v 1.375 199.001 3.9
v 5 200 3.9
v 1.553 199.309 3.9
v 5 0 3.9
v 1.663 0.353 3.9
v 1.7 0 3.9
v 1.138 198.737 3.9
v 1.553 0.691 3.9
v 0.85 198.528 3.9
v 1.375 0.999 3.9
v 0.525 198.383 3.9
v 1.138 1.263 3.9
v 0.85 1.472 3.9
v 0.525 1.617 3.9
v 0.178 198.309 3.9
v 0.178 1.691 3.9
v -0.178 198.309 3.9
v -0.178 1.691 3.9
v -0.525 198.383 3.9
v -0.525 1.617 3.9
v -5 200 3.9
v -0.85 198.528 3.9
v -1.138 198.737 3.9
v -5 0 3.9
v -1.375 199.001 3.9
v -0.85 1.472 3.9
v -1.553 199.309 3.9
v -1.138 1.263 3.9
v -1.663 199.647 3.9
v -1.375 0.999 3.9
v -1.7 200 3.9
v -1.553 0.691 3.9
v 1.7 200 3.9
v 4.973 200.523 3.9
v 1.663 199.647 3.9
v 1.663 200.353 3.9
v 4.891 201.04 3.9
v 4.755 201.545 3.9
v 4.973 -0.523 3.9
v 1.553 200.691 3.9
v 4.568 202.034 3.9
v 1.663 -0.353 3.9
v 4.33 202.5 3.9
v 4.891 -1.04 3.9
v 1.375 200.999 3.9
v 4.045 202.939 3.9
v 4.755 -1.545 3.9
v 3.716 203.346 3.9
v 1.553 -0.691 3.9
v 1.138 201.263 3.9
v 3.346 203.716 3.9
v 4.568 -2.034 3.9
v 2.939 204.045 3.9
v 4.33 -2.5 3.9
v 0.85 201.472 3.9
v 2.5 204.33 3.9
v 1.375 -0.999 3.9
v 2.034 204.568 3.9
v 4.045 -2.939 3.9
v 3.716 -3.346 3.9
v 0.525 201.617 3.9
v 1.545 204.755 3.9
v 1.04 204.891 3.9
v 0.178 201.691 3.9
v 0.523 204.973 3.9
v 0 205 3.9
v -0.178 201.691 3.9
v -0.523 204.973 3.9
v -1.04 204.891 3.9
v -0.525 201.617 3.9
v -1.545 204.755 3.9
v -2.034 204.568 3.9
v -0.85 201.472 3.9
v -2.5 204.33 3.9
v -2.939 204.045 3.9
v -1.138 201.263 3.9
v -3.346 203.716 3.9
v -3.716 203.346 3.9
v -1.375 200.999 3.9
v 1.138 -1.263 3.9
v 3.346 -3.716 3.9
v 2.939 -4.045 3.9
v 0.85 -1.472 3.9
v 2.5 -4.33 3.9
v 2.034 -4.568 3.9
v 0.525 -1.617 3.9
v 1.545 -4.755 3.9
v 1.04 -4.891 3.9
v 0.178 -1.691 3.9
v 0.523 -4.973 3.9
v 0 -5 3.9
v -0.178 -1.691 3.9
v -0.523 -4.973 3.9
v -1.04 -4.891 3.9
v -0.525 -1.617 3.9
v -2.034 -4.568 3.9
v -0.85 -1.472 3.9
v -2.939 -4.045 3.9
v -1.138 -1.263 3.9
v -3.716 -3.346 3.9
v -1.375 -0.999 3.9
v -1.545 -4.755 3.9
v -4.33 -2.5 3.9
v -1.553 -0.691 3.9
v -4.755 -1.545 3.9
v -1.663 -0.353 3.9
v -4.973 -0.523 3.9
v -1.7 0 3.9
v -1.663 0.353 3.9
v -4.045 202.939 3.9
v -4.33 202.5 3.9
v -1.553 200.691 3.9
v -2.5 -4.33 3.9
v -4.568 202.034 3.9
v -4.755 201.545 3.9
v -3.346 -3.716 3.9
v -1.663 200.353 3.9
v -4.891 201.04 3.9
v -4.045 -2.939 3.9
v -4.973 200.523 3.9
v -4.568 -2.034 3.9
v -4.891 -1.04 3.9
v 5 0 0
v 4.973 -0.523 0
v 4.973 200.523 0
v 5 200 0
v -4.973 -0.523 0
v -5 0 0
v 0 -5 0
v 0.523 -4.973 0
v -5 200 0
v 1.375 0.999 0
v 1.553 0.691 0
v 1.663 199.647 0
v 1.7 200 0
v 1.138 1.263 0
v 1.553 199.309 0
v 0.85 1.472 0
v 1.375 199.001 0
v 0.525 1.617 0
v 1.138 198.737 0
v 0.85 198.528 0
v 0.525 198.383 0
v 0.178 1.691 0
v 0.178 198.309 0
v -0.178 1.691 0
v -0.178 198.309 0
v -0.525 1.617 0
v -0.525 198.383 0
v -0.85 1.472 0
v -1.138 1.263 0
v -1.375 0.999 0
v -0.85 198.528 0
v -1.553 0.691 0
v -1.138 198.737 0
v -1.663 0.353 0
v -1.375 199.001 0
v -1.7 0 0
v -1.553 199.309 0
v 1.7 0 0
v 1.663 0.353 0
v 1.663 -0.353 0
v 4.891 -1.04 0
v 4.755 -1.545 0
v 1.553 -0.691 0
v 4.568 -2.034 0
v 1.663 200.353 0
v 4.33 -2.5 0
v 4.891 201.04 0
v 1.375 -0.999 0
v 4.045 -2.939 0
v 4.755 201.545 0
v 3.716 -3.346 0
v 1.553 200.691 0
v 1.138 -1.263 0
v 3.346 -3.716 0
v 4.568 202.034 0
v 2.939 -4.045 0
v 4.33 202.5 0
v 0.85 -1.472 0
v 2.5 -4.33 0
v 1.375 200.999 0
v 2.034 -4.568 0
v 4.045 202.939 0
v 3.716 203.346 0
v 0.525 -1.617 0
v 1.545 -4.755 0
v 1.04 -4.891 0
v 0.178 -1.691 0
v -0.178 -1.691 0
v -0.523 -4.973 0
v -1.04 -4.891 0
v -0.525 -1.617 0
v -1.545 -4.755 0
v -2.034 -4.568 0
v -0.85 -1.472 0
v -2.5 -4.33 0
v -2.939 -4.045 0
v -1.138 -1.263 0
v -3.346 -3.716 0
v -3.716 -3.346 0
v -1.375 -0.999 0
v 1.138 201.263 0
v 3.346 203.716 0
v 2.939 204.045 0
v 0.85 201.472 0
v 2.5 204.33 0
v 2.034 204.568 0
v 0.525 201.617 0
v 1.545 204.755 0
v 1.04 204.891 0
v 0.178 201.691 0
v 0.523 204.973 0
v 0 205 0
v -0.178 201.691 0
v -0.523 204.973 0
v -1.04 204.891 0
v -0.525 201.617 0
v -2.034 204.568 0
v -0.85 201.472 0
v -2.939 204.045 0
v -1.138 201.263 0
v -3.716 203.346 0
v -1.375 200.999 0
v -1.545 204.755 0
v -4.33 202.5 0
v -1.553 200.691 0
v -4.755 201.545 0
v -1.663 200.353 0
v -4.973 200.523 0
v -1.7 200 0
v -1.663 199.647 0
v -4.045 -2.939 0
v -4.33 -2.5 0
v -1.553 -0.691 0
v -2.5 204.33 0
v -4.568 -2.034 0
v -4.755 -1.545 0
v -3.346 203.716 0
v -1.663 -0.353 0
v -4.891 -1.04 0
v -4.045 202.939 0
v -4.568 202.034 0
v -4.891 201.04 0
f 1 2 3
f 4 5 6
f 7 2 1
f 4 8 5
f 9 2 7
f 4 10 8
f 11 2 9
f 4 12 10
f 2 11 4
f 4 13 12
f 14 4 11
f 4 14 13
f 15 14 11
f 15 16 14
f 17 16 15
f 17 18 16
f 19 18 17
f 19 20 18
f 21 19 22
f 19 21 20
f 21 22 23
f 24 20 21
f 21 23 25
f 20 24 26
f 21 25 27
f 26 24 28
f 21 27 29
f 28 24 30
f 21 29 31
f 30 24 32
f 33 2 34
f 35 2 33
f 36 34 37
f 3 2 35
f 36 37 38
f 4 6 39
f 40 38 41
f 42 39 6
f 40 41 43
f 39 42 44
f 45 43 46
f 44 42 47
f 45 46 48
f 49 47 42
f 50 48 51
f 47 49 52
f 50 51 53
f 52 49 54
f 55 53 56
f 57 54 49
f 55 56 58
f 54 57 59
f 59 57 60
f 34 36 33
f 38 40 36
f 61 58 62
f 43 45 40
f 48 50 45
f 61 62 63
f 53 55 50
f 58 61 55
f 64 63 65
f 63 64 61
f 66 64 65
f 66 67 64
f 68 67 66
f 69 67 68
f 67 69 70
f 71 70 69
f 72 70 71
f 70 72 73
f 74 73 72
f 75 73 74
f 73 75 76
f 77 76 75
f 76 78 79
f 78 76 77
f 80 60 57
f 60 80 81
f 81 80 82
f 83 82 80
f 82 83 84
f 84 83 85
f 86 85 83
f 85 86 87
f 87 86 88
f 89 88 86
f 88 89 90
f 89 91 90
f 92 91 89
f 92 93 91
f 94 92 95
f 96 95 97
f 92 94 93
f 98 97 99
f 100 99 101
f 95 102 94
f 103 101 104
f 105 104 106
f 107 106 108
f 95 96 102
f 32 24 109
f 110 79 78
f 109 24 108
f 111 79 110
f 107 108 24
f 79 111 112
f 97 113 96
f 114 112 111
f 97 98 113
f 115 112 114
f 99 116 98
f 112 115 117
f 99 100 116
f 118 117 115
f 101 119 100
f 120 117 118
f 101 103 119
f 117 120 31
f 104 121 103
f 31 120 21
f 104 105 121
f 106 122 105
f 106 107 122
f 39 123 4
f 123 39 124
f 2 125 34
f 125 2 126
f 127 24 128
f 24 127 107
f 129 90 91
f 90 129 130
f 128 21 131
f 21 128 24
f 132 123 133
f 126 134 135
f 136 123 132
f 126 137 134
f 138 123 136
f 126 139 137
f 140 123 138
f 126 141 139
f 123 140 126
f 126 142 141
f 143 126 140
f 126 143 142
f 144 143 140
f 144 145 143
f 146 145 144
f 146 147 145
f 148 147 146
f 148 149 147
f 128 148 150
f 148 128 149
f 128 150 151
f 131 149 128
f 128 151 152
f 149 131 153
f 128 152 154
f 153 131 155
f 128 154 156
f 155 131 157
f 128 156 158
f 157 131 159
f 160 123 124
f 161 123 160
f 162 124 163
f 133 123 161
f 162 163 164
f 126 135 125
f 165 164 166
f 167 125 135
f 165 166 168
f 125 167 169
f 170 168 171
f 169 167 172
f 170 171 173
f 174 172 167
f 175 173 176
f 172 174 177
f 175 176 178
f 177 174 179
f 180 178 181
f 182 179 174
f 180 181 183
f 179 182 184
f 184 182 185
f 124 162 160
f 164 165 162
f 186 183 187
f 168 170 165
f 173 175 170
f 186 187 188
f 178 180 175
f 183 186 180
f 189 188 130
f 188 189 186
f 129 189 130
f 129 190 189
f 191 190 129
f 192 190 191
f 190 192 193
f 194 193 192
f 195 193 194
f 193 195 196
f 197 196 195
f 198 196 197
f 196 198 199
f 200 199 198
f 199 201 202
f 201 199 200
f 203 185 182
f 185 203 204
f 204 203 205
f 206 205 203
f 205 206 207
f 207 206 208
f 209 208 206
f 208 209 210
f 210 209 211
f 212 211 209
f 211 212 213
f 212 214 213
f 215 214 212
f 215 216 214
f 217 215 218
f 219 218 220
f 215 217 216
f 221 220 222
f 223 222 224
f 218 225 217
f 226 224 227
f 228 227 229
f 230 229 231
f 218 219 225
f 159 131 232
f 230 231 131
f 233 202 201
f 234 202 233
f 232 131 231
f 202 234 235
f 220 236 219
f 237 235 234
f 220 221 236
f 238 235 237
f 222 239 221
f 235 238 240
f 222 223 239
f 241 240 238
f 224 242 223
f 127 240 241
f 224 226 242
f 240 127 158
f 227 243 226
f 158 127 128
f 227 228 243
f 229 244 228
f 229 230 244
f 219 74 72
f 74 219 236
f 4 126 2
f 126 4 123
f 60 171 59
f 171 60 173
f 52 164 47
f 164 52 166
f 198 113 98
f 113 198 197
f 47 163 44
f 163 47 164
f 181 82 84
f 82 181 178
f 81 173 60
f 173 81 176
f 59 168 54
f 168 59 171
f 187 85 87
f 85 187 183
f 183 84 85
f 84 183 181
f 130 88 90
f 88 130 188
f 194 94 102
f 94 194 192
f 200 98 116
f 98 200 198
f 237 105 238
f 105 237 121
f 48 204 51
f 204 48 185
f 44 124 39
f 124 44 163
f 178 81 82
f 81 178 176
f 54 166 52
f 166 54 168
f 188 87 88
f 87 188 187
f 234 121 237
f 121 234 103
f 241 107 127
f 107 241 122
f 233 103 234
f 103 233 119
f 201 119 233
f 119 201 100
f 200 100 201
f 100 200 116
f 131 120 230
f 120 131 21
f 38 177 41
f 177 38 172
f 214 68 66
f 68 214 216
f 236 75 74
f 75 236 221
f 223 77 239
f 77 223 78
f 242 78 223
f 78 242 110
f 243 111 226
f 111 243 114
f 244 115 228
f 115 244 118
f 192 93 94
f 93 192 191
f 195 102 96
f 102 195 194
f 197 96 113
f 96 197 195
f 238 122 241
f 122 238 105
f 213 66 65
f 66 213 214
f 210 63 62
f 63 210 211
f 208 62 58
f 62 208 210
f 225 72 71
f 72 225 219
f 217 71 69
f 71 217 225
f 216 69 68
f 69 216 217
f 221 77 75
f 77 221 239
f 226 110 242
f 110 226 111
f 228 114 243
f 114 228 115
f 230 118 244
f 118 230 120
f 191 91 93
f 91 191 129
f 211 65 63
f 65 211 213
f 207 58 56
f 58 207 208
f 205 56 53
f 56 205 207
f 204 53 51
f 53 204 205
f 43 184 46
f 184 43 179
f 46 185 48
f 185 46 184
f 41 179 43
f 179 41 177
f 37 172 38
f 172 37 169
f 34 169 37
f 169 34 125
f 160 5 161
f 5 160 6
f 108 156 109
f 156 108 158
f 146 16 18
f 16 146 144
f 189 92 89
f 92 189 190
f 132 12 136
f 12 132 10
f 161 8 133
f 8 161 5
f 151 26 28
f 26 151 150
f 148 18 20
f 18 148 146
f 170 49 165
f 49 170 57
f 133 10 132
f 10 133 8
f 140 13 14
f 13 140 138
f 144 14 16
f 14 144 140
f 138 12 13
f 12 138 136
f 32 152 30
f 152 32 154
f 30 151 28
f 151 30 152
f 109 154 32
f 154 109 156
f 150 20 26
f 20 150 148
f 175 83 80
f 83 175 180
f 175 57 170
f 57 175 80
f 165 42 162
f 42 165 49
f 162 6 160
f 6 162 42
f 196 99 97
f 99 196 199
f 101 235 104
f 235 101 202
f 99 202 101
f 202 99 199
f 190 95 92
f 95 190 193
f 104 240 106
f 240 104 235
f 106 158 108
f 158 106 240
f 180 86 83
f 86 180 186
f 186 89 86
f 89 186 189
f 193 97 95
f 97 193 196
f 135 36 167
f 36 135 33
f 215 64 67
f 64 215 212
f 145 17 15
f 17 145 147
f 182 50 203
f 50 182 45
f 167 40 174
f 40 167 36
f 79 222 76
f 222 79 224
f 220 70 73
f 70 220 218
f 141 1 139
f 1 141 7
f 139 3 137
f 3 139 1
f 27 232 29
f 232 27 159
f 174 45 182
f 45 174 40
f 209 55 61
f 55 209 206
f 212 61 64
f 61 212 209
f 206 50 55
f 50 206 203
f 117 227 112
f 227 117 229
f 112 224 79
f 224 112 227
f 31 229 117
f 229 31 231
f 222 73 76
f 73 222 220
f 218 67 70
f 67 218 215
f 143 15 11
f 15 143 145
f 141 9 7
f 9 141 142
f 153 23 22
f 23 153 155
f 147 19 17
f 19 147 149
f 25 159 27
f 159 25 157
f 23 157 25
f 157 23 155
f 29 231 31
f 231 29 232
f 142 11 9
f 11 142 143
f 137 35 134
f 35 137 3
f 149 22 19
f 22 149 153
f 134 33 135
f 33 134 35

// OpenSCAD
//general
$fn = 30;                  //convexity of general curved faces
thickness = 3.9;             //thickness of arm

//arm specific stuff
arm_length =  200;//155;               //horn center to horn center distance for arm length

pivot_diameter = 10;            //diameter of pivoting end
free_turning3mm = 3.4;          //diameter of hole for free turning motion

difference(){
   hull(){
      cylinder(d=pivot_diameter,h=thickness, $fn = 60);
      translate([0,arm_length,0])
      cylinder(d=pivot_diameter,h=thickness, $fn = 60);
   }
   cylinder(d=free_turning3mm,h=thickness);
   translate([0,arm_length,0])
   cylinder(d=free_turning3mm,h=thickness);
}
